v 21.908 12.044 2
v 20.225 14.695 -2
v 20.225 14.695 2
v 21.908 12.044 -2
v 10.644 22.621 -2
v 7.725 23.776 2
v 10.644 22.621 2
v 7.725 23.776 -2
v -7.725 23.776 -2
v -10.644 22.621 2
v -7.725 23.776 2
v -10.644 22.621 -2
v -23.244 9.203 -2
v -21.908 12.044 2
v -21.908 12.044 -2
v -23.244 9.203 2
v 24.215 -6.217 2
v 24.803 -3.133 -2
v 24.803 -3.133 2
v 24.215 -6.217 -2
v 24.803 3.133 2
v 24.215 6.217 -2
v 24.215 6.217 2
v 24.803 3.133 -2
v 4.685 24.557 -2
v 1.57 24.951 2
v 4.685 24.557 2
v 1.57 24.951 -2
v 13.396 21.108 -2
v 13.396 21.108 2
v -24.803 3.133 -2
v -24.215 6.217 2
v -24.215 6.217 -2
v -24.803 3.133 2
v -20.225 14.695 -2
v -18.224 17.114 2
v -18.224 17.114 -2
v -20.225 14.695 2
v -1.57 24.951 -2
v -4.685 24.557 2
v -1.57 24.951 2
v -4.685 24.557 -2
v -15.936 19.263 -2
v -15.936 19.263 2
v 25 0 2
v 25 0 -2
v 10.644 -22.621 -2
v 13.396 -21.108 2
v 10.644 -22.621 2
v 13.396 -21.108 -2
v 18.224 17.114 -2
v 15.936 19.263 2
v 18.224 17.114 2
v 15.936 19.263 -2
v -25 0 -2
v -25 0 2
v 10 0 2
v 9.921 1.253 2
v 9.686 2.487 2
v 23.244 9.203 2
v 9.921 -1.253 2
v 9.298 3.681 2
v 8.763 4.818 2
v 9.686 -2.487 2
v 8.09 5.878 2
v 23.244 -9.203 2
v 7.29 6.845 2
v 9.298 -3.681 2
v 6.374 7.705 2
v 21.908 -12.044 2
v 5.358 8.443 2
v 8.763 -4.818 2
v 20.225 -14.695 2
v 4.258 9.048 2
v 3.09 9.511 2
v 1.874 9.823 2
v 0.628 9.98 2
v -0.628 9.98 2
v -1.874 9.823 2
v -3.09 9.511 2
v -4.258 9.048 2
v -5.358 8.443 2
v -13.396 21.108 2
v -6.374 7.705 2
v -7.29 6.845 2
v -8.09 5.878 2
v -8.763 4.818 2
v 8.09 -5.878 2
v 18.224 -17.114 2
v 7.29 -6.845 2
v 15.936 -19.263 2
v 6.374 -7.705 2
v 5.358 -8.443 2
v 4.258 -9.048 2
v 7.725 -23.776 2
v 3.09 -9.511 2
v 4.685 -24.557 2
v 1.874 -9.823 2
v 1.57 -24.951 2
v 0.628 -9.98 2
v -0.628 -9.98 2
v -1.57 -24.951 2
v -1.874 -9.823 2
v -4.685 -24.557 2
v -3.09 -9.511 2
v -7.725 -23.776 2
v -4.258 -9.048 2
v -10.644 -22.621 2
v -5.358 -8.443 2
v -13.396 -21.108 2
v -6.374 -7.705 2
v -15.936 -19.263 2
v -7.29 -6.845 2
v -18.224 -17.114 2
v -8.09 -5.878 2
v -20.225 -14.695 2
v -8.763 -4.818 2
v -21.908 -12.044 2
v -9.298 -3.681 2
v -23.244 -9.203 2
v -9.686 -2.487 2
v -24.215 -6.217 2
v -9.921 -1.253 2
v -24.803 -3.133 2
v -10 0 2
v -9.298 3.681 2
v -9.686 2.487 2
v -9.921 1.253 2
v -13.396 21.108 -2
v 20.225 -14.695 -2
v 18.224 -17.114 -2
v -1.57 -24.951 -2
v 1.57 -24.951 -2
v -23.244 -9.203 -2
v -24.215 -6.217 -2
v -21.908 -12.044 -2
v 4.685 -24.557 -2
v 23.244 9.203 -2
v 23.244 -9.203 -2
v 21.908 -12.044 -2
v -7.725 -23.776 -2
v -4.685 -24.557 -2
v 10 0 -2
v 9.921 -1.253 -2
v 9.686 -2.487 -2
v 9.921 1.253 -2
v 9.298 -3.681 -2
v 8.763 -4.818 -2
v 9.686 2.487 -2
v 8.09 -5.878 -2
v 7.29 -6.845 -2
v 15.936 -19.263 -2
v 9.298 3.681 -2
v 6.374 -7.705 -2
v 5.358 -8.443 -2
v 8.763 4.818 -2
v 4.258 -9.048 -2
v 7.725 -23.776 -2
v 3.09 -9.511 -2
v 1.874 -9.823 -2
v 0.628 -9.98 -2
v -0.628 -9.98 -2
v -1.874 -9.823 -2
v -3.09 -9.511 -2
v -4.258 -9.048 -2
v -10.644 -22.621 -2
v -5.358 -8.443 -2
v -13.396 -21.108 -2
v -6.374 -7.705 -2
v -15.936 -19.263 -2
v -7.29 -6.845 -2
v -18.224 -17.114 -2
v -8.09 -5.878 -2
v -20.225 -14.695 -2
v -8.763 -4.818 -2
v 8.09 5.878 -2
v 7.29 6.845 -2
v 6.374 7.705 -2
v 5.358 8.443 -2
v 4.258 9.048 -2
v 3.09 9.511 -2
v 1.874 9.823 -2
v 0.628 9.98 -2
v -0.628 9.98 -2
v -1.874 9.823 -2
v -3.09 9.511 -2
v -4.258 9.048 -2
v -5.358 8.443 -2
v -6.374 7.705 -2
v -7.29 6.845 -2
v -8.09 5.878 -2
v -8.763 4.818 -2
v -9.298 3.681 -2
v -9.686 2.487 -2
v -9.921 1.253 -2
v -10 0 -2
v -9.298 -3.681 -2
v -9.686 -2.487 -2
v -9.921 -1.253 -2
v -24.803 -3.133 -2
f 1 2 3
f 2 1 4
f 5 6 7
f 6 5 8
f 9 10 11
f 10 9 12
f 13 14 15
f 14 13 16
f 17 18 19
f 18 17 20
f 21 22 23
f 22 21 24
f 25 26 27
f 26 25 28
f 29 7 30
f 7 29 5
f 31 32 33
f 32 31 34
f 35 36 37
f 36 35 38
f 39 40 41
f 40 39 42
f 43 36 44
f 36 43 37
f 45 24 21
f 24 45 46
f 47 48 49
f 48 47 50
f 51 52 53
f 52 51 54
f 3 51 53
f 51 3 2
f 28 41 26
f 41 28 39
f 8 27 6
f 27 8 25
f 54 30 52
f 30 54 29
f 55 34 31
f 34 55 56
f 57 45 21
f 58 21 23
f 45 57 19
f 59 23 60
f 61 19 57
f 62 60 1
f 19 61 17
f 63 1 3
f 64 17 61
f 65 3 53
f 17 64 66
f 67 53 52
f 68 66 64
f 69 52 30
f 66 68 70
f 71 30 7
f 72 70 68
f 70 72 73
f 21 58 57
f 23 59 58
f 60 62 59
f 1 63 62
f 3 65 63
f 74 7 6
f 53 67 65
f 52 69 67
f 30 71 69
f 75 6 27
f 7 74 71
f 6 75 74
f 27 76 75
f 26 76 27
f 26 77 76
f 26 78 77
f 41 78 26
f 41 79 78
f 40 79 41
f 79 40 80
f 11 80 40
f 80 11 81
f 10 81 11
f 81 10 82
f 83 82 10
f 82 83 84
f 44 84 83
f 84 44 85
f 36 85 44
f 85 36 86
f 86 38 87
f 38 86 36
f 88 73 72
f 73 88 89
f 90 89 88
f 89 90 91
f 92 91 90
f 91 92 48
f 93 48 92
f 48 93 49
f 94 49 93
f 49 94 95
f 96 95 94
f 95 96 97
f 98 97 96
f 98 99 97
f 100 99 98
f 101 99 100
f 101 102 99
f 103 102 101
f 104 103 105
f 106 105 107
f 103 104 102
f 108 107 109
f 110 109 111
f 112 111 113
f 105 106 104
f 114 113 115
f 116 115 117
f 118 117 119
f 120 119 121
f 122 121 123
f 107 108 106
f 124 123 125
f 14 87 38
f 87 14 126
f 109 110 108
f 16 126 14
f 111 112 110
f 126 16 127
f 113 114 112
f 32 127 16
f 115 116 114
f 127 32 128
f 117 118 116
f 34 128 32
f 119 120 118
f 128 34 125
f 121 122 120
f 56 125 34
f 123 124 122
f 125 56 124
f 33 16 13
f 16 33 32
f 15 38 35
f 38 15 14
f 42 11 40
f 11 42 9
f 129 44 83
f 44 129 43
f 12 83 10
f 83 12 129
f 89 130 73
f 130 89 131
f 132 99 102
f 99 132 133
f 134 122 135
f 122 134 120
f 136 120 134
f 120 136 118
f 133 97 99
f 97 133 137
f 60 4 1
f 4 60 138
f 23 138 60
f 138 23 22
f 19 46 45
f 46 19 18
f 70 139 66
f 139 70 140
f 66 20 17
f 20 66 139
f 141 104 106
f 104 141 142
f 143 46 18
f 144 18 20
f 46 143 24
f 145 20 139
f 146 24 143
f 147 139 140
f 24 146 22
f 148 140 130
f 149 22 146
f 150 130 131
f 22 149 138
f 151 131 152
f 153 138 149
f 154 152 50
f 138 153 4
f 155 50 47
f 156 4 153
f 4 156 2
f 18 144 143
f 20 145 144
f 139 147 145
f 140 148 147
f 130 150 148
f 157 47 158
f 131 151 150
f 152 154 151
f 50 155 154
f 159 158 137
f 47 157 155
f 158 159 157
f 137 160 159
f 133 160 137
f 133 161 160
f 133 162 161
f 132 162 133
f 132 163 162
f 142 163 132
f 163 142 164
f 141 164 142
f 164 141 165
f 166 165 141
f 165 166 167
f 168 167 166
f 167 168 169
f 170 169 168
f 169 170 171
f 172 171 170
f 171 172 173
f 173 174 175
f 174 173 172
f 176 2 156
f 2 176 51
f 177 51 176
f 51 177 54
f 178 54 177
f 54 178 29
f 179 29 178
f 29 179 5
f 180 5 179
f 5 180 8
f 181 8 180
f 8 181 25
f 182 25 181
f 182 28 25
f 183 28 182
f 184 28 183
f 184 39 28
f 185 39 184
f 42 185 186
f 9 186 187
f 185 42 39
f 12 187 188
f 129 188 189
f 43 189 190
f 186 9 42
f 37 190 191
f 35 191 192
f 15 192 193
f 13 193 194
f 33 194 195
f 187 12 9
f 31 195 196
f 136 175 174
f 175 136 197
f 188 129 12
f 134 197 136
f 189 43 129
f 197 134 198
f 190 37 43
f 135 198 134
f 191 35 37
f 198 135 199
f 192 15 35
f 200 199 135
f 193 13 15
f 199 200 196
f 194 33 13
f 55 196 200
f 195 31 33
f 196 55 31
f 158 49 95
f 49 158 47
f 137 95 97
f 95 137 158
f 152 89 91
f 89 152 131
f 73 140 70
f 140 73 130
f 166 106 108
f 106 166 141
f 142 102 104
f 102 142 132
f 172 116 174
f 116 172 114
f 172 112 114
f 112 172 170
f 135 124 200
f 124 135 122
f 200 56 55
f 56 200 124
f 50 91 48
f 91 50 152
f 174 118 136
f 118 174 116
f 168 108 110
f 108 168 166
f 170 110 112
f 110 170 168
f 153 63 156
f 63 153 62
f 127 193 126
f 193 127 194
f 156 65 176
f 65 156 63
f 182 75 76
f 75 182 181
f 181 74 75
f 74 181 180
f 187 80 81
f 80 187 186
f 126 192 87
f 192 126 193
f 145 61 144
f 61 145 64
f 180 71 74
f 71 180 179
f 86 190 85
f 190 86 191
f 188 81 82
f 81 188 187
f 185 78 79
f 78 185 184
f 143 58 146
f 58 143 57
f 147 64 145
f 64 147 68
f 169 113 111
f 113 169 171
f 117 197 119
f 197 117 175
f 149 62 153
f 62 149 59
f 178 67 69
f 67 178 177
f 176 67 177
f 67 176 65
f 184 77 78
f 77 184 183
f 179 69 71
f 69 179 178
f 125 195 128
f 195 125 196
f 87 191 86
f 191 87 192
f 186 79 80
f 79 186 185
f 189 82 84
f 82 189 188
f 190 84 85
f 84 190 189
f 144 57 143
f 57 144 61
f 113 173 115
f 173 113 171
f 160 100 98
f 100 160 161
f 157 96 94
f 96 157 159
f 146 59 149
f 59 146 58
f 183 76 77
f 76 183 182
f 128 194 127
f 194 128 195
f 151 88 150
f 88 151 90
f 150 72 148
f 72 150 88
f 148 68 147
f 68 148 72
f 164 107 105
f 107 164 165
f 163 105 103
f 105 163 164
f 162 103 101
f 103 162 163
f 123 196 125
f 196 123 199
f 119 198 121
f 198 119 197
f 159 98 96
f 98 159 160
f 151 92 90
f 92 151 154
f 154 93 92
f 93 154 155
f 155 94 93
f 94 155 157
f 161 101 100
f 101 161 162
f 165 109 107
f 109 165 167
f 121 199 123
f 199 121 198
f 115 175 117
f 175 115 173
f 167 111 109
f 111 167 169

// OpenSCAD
$fn = 50;


difference() {
	union() {
		translate(v = [0, 0, -2.0000000000]) {
			cylinder(h = 4, r = 25.0000000000);
		}
	}
	union() {
		translate(v = [0, 0, -100.0000000000]) {
			cylinder(h = 200, r = 10);
		}
	}
}
